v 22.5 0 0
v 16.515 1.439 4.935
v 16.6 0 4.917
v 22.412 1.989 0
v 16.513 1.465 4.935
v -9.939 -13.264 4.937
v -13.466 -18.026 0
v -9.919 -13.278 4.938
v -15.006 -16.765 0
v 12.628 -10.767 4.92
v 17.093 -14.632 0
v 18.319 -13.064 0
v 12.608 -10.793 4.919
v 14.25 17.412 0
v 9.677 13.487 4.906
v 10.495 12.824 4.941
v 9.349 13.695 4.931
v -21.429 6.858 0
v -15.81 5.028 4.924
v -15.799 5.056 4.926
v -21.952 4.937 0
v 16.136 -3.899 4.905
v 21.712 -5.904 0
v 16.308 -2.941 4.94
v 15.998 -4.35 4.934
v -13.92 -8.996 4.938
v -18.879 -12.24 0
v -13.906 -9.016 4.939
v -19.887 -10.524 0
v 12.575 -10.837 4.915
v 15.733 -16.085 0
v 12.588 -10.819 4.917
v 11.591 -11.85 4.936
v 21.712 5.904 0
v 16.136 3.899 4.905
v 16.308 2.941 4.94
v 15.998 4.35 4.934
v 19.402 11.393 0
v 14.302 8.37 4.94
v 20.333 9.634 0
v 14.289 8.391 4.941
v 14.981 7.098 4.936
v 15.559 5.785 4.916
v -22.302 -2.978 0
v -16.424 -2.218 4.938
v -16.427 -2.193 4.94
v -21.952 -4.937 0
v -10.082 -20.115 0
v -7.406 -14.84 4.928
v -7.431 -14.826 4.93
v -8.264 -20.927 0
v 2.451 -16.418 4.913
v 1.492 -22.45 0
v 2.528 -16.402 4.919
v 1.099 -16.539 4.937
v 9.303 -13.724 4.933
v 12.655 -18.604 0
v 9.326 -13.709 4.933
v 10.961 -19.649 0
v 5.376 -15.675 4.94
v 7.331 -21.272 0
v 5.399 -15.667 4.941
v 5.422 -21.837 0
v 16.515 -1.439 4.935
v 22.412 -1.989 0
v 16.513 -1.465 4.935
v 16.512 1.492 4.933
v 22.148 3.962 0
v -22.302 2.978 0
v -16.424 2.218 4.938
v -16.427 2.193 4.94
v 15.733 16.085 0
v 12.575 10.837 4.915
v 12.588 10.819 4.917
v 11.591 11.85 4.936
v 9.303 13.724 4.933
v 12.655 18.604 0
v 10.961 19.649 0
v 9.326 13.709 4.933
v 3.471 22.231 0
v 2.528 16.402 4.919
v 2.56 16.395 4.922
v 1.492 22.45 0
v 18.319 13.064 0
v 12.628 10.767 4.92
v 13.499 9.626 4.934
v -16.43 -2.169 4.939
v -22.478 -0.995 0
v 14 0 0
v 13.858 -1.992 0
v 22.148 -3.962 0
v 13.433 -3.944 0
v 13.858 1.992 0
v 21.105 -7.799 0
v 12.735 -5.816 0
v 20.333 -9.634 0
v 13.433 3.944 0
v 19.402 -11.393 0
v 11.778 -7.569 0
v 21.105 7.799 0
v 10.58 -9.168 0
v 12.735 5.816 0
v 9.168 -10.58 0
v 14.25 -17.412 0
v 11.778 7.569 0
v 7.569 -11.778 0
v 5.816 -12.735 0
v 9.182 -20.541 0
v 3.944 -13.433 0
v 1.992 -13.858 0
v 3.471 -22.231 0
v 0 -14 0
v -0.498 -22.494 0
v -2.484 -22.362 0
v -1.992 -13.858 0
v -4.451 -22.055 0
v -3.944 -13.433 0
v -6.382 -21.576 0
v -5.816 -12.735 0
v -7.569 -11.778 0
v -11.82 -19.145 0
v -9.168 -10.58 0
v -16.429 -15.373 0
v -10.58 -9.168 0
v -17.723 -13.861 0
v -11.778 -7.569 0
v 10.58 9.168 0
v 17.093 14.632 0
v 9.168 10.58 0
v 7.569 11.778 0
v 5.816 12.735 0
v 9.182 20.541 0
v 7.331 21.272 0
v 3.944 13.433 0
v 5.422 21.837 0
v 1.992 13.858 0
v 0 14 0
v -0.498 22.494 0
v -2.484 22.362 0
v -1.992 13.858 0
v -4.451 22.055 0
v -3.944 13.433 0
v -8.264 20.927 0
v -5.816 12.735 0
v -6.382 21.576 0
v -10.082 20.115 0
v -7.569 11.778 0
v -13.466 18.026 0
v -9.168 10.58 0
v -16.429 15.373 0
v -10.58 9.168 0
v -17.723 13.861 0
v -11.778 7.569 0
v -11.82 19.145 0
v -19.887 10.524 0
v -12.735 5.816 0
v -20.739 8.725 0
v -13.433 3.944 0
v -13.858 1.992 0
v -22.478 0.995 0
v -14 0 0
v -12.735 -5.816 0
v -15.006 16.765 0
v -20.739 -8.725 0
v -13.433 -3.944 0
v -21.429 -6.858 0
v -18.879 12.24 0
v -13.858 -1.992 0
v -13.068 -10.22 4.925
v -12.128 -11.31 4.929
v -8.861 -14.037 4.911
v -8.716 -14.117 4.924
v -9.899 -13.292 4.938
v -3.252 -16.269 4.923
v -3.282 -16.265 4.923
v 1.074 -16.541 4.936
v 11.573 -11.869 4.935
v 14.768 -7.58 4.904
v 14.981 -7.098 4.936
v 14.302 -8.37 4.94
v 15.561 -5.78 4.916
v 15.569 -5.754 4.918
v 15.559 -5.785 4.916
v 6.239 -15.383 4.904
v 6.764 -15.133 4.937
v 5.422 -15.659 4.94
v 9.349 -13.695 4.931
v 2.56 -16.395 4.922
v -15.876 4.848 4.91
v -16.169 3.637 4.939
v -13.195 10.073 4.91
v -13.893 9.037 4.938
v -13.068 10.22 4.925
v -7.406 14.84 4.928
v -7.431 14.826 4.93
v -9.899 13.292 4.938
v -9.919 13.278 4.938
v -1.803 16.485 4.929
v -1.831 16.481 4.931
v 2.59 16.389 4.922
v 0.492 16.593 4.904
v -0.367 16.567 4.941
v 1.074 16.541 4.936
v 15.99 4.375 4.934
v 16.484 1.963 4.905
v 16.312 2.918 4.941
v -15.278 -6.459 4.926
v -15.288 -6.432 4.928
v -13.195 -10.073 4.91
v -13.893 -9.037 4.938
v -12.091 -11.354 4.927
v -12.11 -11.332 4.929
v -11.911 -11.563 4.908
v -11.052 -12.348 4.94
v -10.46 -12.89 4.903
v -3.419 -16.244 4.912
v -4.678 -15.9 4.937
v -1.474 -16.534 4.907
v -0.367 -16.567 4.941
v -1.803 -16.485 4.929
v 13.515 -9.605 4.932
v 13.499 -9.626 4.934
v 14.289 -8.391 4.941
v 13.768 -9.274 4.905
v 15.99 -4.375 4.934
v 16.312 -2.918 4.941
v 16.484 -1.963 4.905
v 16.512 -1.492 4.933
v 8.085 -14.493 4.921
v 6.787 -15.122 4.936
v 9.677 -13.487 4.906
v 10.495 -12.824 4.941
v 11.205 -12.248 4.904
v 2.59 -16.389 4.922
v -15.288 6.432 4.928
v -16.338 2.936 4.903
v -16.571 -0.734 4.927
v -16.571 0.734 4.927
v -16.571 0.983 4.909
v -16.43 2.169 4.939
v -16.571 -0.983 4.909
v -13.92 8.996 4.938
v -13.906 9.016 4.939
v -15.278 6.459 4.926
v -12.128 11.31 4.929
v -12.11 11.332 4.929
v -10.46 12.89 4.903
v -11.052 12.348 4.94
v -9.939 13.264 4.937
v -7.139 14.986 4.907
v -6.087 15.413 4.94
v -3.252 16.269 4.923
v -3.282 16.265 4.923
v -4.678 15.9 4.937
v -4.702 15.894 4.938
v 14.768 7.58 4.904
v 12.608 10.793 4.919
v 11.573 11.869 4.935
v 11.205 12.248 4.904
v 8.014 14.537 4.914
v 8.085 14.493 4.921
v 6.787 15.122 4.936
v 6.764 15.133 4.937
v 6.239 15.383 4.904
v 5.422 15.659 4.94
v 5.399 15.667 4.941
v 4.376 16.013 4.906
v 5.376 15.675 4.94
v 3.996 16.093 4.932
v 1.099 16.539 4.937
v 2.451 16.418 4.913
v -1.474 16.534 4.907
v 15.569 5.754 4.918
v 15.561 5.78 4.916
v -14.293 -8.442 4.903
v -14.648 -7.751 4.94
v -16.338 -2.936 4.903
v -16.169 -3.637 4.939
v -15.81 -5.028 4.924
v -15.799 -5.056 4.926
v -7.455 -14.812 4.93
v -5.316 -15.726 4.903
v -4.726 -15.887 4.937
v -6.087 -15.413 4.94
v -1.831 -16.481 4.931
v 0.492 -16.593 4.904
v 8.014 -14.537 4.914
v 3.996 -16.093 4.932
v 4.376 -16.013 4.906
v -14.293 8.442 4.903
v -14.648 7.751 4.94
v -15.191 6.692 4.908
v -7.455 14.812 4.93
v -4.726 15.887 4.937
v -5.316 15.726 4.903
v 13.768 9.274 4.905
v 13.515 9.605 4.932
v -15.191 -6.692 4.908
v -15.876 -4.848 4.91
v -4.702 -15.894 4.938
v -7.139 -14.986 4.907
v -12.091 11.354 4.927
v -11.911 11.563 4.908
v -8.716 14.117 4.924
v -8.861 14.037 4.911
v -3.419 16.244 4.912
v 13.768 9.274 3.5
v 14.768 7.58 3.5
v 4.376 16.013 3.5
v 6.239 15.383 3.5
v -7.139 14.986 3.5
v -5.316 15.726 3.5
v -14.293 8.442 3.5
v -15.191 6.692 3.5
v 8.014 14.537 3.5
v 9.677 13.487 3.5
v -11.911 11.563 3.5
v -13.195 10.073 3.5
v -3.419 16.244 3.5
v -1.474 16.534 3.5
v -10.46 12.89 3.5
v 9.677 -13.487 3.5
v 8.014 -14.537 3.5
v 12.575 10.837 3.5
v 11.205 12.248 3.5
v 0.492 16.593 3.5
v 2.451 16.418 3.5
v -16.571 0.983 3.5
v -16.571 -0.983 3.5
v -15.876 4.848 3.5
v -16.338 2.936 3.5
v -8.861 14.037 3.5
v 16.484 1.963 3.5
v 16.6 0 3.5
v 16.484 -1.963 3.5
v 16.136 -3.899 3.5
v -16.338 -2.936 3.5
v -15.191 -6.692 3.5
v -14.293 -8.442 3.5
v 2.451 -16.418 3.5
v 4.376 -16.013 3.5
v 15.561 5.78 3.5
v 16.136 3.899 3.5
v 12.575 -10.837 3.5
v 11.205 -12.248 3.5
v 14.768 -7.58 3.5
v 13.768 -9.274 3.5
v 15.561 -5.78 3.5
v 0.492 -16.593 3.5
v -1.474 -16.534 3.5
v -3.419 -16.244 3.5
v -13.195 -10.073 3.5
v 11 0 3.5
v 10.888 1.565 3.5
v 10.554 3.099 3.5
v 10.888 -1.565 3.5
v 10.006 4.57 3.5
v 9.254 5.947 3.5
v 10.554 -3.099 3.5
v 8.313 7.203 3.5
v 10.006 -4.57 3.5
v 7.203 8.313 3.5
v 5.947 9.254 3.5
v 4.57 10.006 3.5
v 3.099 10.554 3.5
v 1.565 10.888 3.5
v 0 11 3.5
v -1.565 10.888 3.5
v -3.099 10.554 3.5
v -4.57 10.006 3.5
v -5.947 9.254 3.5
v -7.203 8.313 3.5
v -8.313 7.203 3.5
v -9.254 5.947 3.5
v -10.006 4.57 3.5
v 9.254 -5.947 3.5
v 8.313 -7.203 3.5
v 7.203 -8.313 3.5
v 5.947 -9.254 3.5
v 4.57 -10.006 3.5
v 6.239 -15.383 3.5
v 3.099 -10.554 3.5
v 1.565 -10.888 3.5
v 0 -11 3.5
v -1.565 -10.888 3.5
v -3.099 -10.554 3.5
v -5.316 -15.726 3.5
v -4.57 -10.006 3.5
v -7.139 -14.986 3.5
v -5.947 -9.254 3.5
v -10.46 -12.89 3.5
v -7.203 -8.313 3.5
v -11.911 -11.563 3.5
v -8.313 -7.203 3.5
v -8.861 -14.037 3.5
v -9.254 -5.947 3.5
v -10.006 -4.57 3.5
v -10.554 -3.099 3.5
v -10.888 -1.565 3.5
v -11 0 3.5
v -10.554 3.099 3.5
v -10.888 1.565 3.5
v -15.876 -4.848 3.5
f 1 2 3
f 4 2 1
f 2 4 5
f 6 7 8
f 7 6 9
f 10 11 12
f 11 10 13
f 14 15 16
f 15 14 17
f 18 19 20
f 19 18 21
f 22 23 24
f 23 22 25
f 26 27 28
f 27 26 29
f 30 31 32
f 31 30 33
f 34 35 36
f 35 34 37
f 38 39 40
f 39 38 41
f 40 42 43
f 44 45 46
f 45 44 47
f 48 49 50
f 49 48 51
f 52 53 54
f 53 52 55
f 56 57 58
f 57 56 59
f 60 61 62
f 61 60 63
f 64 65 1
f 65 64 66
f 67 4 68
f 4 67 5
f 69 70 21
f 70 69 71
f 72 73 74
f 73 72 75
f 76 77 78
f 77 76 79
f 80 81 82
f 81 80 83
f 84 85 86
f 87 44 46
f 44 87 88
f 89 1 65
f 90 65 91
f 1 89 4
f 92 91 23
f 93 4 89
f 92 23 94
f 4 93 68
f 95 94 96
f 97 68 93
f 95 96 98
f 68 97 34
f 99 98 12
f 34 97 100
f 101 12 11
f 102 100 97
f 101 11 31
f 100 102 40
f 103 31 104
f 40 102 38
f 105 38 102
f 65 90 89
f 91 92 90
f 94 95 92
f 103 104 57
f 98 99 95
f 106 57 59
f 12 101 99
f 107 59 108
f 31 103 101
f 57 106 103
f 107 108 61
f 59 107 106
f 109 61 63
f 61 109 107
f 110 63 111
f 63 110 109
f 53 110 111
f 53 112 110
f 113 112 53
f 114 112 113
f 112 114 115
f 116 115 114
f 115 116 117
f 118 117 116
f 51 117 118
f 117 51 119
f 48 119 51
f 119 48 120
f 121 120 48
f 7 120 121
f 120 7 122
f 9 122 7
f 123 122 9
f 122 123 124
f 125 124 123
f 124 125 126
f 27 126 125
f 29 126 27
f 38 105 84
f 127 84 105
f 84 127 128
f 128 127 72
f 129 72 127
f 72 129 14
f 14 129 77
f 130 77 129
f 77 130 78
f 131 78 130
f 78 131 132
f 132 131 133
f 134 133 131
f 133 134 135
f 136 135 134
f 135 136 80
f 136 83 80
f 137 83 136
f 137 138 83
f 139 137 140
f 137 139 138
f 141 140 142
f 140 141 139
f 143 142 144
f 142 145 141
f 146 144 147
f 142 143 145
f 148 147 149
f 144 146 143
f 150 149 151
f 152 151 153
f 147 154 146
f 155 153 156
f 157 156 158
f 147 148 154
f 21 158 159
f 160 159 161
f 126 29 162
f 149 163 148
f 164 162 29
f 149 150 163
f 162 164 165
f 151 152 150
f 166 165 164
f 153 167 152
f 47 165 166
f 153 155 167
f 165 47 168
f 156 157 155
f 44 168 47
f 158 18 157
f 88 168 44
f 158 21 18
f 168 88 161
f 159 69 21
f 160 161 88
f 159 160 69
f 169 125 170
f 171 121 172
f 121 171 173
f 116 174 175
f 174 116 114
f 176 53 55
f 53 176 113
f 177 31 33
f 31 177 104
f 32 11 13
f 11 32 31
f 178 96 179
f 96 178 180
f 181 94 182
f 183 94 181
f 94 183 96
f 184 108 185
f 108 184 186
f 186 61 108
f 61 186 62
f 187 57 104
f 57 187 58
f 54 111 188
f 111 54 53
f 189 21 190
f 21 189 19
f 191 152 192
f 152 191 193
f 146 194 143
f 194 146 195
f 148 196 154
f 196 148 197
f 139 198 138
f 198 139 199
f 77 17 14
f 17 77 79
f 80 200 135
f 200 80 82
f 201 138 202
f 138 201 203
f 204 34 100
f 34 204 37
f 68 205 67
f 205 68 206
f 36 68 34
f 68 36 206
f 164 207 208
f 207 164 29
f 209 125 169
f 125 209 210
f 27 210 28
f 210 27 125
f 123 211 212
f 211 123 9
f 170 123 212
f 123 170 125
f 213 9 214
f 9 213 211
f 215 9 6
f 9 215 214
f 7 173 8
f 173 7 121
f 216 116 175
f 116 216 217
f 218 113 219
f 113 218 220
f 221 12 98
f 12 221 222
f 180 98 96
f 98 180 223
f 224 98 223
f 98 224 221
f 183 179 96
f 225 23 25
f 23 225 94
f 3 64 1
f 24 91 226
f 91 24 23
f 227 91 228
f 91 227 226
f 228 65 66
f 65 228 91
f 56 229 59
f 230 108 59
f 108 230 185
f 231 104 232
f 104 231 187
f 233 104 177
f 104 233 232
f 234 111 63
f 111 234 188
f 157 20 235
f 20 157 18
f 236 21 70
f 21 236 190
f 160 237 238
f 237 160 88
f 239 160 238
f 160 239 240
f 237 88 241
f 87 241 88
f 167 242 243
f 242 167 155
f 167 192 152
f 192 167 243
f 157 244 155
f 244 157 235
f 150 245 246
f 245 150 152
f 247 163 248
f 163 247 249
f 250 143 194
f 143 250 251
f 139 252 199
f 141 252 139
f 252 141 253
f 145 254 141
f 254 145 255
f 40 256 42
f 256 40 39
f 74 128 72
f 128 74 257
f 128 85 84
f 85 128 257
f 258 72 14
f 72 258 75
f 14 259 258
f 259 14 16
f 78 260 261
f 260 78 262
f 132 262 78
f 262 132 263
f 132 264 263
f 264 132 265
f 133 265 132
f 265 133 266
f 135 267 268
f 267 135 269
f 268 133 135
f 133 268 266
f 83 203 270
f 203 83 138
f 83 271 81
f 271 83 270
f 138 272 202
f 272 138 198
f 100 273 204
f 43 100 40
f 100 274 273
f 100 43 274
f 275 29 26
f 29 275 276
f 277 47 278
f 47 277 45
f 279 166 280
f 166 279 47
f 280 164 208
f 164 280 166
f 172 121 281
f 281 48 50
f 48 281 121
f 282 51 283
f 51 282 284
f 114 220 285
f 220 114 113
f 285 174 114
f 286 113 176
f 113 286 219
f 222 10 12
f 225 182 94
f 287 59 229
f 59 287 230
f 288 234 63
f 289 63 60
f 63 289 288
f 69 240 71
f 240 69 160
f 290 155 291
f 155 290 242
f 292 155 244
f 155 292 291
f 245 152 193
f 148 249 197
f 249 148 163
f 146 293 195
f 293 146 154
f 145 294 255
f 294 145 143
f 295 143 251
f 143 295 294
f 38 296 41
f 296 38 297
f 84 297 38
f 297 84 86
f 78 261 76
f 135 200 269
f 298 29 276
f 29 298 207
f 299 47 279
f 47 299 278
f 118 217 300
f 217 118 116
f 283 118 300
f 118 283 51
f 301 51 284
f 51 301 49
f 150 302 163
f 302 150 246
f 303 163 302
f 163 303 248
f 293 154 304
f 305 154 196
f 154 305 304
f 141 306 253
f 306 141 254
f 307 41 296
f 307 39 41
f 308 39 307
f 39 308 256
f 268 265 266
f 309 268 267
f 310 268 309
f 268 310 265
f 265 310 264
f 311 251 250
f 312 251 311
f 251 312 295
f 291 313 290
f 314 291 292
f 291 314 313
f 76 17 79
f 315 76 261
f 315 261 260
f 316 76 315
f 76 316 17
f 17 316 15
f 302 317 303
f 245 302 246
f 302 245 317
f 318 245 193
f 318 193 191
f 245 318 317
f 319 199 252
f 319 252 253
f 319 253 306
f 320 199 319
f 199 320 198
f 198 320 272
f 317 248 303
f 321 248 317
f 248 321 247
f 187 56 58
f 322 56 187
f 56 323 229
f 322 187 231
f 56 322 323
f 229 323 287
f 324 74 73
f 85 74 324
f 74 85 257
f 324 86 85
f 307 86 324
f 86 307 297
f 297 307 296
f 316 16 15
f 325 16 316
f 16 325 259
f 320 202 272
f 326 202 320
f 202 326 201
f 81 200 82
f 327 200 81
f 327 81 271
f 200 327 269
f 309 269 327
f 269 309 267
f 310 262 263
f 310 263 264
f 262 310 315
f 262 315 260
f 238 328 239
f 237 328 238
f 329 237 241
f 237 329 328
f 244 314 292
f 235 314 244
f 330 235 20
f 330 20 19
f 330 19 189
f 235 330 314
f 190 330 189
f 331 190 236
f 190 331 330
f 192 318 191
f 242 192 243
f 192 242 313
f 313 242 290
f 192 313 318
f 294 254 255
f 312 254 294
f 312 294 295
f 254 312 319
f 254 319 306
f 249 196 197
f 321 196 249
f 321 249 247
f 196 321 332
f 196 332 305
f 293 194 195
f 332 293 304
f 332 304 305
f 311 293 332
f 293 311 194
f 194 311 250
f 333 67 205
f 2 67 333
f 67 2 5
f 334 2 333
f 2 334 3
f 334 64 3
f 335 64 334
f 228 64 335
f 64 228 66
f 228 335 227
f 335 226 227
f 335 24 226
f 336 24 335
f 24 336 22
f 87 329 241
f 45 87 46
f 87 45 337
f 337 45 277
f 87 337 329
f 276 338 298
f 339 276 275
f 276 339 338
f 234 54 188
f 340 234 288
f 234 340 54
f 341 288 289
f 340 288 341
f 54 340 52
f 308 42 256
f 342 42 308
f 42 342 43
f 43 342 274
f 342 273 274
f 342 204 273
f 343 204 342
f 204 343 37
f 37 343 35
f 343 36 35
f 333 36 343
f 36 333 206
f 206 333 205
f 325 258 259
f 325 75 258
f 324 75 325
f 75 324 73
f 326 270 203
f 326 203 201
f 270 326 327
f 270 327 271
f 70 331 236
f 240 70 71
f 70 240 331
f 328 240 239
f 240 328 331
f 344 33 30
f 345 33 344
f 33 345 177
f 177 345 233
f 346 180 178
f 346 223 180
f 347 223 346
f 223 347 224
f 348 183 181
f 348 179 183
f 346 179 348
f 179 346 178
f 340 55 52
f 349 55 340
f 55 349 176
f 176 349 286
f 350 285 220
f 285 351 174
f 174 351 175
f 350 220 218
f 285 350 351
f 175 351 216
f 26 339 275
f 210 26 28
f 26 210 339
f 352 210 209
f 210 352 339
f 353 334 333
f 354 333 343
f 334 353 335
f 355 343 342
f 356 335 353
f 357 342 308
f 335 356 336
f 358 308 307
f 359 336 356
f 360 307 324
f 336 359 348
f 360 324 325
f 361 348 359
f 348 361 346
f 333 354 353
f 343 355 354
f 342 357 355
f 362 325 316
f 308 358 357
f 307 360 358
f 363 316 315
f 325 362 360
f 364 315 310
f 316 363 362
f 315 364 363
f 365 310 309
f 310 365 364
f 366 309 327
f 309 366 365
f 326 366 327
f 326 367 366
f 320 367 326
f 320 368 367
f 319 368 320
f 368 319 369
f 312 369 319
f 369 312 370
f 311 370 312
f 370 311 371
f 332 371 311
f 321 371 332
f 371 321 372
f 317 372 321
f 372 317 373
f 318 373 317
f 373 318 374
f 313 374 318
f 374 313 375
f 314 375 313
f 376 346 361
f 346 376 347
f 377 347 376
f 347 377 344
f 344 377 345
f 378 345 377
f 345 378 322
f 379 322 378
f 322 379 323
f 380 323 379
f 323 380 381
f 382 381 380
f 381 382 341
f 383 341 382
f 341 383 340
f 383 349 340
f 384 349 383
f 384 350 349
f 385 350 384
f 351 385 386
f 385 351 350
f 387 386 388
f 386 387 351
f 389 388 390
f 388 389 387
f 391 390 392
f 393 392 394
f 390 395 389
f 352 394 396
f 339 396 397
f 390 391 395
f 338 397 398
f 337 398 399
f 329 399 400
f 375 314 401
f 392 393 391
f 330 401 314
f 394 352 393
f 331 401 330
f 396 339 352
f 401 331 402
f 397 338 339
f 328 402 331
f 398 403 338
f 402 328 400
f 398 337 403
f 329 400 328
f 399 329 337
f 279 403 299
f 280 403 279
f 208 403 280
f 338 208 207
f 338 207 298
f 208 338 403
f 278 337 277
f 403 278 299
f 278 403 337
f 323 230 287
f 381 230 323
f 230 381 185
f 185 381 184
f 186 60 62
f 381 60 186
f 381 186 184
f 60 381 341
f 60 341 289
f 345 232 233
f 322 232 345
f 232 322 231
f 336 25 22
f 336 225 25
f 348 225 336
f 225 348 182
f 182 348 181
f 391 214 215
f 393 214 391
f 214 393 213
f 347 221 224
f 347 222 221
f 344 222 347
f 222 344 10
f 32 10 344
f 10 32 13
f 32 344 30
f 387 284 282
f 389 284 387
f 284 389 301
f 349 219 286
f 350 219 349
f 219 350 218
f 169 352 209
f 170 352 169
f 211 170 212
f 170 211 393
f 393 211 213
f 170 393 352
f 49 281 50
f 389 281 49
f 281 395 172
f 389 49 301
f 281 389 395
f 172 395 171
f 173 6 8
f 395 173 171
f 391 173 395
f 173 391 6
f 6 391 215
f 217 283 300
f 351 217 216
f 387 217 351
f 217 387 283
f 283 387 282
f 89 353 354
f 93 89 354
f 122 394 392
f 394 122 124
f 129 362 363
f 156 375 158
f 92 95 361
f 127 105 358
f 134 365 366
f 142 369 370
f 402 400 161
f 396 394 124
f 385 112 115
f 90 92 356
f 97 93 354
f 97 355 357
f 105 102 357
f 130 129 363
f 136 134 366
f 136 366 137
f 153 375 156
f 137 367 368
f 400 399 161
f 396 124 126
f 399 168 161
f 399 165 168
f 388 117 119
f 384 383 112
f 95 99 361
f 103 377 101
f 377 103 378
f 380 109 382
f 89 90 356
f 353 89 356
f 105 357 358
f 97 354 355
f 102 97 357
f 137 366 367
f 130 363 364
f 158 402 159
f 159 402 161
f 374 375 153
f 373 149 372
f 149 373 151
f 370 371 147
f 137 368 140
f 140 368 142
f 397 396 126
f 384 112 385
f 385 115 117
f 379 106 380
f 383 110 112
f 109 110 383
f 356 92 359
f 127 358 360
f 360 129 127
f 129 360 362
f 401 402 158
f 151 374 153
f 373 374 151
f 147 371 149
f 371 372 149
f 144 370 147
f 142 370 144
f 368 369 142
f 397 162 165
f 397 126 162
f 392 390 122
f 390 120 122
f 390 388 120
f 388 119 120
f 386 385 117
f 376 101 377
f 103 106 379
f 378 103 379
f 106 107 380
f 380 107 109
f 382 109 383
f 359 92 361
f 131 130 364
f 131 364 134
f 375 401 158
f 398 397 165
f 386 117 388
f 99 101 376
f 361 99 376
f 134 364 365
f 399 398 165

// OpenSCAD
$fa=1;

module umlenkrolle() {
import("/home/jorschiedt/Development/3D-Print/Thingiverse/filament_return_pulley_for_Vellemann_Vertex_3D_Delta_K8800/files/filamentumlenker-rolle.stl");
}

module fuss() {
    difference() {
    cylinder(d1=45,d2=33,2,h=5);
    translate([0,0,3.5]) cylinder(d1=33.2,d2=33.2,h=1.5);
//    translate([0,0,0]) cylinder(d1=22,d2=22,h=5);
    translate([0,0,0]) cylinder(d1=28,d2=22,h=3.5);
    
    }
}

fuss();
// translate([0,0,3.5]) umlenkrolle();
